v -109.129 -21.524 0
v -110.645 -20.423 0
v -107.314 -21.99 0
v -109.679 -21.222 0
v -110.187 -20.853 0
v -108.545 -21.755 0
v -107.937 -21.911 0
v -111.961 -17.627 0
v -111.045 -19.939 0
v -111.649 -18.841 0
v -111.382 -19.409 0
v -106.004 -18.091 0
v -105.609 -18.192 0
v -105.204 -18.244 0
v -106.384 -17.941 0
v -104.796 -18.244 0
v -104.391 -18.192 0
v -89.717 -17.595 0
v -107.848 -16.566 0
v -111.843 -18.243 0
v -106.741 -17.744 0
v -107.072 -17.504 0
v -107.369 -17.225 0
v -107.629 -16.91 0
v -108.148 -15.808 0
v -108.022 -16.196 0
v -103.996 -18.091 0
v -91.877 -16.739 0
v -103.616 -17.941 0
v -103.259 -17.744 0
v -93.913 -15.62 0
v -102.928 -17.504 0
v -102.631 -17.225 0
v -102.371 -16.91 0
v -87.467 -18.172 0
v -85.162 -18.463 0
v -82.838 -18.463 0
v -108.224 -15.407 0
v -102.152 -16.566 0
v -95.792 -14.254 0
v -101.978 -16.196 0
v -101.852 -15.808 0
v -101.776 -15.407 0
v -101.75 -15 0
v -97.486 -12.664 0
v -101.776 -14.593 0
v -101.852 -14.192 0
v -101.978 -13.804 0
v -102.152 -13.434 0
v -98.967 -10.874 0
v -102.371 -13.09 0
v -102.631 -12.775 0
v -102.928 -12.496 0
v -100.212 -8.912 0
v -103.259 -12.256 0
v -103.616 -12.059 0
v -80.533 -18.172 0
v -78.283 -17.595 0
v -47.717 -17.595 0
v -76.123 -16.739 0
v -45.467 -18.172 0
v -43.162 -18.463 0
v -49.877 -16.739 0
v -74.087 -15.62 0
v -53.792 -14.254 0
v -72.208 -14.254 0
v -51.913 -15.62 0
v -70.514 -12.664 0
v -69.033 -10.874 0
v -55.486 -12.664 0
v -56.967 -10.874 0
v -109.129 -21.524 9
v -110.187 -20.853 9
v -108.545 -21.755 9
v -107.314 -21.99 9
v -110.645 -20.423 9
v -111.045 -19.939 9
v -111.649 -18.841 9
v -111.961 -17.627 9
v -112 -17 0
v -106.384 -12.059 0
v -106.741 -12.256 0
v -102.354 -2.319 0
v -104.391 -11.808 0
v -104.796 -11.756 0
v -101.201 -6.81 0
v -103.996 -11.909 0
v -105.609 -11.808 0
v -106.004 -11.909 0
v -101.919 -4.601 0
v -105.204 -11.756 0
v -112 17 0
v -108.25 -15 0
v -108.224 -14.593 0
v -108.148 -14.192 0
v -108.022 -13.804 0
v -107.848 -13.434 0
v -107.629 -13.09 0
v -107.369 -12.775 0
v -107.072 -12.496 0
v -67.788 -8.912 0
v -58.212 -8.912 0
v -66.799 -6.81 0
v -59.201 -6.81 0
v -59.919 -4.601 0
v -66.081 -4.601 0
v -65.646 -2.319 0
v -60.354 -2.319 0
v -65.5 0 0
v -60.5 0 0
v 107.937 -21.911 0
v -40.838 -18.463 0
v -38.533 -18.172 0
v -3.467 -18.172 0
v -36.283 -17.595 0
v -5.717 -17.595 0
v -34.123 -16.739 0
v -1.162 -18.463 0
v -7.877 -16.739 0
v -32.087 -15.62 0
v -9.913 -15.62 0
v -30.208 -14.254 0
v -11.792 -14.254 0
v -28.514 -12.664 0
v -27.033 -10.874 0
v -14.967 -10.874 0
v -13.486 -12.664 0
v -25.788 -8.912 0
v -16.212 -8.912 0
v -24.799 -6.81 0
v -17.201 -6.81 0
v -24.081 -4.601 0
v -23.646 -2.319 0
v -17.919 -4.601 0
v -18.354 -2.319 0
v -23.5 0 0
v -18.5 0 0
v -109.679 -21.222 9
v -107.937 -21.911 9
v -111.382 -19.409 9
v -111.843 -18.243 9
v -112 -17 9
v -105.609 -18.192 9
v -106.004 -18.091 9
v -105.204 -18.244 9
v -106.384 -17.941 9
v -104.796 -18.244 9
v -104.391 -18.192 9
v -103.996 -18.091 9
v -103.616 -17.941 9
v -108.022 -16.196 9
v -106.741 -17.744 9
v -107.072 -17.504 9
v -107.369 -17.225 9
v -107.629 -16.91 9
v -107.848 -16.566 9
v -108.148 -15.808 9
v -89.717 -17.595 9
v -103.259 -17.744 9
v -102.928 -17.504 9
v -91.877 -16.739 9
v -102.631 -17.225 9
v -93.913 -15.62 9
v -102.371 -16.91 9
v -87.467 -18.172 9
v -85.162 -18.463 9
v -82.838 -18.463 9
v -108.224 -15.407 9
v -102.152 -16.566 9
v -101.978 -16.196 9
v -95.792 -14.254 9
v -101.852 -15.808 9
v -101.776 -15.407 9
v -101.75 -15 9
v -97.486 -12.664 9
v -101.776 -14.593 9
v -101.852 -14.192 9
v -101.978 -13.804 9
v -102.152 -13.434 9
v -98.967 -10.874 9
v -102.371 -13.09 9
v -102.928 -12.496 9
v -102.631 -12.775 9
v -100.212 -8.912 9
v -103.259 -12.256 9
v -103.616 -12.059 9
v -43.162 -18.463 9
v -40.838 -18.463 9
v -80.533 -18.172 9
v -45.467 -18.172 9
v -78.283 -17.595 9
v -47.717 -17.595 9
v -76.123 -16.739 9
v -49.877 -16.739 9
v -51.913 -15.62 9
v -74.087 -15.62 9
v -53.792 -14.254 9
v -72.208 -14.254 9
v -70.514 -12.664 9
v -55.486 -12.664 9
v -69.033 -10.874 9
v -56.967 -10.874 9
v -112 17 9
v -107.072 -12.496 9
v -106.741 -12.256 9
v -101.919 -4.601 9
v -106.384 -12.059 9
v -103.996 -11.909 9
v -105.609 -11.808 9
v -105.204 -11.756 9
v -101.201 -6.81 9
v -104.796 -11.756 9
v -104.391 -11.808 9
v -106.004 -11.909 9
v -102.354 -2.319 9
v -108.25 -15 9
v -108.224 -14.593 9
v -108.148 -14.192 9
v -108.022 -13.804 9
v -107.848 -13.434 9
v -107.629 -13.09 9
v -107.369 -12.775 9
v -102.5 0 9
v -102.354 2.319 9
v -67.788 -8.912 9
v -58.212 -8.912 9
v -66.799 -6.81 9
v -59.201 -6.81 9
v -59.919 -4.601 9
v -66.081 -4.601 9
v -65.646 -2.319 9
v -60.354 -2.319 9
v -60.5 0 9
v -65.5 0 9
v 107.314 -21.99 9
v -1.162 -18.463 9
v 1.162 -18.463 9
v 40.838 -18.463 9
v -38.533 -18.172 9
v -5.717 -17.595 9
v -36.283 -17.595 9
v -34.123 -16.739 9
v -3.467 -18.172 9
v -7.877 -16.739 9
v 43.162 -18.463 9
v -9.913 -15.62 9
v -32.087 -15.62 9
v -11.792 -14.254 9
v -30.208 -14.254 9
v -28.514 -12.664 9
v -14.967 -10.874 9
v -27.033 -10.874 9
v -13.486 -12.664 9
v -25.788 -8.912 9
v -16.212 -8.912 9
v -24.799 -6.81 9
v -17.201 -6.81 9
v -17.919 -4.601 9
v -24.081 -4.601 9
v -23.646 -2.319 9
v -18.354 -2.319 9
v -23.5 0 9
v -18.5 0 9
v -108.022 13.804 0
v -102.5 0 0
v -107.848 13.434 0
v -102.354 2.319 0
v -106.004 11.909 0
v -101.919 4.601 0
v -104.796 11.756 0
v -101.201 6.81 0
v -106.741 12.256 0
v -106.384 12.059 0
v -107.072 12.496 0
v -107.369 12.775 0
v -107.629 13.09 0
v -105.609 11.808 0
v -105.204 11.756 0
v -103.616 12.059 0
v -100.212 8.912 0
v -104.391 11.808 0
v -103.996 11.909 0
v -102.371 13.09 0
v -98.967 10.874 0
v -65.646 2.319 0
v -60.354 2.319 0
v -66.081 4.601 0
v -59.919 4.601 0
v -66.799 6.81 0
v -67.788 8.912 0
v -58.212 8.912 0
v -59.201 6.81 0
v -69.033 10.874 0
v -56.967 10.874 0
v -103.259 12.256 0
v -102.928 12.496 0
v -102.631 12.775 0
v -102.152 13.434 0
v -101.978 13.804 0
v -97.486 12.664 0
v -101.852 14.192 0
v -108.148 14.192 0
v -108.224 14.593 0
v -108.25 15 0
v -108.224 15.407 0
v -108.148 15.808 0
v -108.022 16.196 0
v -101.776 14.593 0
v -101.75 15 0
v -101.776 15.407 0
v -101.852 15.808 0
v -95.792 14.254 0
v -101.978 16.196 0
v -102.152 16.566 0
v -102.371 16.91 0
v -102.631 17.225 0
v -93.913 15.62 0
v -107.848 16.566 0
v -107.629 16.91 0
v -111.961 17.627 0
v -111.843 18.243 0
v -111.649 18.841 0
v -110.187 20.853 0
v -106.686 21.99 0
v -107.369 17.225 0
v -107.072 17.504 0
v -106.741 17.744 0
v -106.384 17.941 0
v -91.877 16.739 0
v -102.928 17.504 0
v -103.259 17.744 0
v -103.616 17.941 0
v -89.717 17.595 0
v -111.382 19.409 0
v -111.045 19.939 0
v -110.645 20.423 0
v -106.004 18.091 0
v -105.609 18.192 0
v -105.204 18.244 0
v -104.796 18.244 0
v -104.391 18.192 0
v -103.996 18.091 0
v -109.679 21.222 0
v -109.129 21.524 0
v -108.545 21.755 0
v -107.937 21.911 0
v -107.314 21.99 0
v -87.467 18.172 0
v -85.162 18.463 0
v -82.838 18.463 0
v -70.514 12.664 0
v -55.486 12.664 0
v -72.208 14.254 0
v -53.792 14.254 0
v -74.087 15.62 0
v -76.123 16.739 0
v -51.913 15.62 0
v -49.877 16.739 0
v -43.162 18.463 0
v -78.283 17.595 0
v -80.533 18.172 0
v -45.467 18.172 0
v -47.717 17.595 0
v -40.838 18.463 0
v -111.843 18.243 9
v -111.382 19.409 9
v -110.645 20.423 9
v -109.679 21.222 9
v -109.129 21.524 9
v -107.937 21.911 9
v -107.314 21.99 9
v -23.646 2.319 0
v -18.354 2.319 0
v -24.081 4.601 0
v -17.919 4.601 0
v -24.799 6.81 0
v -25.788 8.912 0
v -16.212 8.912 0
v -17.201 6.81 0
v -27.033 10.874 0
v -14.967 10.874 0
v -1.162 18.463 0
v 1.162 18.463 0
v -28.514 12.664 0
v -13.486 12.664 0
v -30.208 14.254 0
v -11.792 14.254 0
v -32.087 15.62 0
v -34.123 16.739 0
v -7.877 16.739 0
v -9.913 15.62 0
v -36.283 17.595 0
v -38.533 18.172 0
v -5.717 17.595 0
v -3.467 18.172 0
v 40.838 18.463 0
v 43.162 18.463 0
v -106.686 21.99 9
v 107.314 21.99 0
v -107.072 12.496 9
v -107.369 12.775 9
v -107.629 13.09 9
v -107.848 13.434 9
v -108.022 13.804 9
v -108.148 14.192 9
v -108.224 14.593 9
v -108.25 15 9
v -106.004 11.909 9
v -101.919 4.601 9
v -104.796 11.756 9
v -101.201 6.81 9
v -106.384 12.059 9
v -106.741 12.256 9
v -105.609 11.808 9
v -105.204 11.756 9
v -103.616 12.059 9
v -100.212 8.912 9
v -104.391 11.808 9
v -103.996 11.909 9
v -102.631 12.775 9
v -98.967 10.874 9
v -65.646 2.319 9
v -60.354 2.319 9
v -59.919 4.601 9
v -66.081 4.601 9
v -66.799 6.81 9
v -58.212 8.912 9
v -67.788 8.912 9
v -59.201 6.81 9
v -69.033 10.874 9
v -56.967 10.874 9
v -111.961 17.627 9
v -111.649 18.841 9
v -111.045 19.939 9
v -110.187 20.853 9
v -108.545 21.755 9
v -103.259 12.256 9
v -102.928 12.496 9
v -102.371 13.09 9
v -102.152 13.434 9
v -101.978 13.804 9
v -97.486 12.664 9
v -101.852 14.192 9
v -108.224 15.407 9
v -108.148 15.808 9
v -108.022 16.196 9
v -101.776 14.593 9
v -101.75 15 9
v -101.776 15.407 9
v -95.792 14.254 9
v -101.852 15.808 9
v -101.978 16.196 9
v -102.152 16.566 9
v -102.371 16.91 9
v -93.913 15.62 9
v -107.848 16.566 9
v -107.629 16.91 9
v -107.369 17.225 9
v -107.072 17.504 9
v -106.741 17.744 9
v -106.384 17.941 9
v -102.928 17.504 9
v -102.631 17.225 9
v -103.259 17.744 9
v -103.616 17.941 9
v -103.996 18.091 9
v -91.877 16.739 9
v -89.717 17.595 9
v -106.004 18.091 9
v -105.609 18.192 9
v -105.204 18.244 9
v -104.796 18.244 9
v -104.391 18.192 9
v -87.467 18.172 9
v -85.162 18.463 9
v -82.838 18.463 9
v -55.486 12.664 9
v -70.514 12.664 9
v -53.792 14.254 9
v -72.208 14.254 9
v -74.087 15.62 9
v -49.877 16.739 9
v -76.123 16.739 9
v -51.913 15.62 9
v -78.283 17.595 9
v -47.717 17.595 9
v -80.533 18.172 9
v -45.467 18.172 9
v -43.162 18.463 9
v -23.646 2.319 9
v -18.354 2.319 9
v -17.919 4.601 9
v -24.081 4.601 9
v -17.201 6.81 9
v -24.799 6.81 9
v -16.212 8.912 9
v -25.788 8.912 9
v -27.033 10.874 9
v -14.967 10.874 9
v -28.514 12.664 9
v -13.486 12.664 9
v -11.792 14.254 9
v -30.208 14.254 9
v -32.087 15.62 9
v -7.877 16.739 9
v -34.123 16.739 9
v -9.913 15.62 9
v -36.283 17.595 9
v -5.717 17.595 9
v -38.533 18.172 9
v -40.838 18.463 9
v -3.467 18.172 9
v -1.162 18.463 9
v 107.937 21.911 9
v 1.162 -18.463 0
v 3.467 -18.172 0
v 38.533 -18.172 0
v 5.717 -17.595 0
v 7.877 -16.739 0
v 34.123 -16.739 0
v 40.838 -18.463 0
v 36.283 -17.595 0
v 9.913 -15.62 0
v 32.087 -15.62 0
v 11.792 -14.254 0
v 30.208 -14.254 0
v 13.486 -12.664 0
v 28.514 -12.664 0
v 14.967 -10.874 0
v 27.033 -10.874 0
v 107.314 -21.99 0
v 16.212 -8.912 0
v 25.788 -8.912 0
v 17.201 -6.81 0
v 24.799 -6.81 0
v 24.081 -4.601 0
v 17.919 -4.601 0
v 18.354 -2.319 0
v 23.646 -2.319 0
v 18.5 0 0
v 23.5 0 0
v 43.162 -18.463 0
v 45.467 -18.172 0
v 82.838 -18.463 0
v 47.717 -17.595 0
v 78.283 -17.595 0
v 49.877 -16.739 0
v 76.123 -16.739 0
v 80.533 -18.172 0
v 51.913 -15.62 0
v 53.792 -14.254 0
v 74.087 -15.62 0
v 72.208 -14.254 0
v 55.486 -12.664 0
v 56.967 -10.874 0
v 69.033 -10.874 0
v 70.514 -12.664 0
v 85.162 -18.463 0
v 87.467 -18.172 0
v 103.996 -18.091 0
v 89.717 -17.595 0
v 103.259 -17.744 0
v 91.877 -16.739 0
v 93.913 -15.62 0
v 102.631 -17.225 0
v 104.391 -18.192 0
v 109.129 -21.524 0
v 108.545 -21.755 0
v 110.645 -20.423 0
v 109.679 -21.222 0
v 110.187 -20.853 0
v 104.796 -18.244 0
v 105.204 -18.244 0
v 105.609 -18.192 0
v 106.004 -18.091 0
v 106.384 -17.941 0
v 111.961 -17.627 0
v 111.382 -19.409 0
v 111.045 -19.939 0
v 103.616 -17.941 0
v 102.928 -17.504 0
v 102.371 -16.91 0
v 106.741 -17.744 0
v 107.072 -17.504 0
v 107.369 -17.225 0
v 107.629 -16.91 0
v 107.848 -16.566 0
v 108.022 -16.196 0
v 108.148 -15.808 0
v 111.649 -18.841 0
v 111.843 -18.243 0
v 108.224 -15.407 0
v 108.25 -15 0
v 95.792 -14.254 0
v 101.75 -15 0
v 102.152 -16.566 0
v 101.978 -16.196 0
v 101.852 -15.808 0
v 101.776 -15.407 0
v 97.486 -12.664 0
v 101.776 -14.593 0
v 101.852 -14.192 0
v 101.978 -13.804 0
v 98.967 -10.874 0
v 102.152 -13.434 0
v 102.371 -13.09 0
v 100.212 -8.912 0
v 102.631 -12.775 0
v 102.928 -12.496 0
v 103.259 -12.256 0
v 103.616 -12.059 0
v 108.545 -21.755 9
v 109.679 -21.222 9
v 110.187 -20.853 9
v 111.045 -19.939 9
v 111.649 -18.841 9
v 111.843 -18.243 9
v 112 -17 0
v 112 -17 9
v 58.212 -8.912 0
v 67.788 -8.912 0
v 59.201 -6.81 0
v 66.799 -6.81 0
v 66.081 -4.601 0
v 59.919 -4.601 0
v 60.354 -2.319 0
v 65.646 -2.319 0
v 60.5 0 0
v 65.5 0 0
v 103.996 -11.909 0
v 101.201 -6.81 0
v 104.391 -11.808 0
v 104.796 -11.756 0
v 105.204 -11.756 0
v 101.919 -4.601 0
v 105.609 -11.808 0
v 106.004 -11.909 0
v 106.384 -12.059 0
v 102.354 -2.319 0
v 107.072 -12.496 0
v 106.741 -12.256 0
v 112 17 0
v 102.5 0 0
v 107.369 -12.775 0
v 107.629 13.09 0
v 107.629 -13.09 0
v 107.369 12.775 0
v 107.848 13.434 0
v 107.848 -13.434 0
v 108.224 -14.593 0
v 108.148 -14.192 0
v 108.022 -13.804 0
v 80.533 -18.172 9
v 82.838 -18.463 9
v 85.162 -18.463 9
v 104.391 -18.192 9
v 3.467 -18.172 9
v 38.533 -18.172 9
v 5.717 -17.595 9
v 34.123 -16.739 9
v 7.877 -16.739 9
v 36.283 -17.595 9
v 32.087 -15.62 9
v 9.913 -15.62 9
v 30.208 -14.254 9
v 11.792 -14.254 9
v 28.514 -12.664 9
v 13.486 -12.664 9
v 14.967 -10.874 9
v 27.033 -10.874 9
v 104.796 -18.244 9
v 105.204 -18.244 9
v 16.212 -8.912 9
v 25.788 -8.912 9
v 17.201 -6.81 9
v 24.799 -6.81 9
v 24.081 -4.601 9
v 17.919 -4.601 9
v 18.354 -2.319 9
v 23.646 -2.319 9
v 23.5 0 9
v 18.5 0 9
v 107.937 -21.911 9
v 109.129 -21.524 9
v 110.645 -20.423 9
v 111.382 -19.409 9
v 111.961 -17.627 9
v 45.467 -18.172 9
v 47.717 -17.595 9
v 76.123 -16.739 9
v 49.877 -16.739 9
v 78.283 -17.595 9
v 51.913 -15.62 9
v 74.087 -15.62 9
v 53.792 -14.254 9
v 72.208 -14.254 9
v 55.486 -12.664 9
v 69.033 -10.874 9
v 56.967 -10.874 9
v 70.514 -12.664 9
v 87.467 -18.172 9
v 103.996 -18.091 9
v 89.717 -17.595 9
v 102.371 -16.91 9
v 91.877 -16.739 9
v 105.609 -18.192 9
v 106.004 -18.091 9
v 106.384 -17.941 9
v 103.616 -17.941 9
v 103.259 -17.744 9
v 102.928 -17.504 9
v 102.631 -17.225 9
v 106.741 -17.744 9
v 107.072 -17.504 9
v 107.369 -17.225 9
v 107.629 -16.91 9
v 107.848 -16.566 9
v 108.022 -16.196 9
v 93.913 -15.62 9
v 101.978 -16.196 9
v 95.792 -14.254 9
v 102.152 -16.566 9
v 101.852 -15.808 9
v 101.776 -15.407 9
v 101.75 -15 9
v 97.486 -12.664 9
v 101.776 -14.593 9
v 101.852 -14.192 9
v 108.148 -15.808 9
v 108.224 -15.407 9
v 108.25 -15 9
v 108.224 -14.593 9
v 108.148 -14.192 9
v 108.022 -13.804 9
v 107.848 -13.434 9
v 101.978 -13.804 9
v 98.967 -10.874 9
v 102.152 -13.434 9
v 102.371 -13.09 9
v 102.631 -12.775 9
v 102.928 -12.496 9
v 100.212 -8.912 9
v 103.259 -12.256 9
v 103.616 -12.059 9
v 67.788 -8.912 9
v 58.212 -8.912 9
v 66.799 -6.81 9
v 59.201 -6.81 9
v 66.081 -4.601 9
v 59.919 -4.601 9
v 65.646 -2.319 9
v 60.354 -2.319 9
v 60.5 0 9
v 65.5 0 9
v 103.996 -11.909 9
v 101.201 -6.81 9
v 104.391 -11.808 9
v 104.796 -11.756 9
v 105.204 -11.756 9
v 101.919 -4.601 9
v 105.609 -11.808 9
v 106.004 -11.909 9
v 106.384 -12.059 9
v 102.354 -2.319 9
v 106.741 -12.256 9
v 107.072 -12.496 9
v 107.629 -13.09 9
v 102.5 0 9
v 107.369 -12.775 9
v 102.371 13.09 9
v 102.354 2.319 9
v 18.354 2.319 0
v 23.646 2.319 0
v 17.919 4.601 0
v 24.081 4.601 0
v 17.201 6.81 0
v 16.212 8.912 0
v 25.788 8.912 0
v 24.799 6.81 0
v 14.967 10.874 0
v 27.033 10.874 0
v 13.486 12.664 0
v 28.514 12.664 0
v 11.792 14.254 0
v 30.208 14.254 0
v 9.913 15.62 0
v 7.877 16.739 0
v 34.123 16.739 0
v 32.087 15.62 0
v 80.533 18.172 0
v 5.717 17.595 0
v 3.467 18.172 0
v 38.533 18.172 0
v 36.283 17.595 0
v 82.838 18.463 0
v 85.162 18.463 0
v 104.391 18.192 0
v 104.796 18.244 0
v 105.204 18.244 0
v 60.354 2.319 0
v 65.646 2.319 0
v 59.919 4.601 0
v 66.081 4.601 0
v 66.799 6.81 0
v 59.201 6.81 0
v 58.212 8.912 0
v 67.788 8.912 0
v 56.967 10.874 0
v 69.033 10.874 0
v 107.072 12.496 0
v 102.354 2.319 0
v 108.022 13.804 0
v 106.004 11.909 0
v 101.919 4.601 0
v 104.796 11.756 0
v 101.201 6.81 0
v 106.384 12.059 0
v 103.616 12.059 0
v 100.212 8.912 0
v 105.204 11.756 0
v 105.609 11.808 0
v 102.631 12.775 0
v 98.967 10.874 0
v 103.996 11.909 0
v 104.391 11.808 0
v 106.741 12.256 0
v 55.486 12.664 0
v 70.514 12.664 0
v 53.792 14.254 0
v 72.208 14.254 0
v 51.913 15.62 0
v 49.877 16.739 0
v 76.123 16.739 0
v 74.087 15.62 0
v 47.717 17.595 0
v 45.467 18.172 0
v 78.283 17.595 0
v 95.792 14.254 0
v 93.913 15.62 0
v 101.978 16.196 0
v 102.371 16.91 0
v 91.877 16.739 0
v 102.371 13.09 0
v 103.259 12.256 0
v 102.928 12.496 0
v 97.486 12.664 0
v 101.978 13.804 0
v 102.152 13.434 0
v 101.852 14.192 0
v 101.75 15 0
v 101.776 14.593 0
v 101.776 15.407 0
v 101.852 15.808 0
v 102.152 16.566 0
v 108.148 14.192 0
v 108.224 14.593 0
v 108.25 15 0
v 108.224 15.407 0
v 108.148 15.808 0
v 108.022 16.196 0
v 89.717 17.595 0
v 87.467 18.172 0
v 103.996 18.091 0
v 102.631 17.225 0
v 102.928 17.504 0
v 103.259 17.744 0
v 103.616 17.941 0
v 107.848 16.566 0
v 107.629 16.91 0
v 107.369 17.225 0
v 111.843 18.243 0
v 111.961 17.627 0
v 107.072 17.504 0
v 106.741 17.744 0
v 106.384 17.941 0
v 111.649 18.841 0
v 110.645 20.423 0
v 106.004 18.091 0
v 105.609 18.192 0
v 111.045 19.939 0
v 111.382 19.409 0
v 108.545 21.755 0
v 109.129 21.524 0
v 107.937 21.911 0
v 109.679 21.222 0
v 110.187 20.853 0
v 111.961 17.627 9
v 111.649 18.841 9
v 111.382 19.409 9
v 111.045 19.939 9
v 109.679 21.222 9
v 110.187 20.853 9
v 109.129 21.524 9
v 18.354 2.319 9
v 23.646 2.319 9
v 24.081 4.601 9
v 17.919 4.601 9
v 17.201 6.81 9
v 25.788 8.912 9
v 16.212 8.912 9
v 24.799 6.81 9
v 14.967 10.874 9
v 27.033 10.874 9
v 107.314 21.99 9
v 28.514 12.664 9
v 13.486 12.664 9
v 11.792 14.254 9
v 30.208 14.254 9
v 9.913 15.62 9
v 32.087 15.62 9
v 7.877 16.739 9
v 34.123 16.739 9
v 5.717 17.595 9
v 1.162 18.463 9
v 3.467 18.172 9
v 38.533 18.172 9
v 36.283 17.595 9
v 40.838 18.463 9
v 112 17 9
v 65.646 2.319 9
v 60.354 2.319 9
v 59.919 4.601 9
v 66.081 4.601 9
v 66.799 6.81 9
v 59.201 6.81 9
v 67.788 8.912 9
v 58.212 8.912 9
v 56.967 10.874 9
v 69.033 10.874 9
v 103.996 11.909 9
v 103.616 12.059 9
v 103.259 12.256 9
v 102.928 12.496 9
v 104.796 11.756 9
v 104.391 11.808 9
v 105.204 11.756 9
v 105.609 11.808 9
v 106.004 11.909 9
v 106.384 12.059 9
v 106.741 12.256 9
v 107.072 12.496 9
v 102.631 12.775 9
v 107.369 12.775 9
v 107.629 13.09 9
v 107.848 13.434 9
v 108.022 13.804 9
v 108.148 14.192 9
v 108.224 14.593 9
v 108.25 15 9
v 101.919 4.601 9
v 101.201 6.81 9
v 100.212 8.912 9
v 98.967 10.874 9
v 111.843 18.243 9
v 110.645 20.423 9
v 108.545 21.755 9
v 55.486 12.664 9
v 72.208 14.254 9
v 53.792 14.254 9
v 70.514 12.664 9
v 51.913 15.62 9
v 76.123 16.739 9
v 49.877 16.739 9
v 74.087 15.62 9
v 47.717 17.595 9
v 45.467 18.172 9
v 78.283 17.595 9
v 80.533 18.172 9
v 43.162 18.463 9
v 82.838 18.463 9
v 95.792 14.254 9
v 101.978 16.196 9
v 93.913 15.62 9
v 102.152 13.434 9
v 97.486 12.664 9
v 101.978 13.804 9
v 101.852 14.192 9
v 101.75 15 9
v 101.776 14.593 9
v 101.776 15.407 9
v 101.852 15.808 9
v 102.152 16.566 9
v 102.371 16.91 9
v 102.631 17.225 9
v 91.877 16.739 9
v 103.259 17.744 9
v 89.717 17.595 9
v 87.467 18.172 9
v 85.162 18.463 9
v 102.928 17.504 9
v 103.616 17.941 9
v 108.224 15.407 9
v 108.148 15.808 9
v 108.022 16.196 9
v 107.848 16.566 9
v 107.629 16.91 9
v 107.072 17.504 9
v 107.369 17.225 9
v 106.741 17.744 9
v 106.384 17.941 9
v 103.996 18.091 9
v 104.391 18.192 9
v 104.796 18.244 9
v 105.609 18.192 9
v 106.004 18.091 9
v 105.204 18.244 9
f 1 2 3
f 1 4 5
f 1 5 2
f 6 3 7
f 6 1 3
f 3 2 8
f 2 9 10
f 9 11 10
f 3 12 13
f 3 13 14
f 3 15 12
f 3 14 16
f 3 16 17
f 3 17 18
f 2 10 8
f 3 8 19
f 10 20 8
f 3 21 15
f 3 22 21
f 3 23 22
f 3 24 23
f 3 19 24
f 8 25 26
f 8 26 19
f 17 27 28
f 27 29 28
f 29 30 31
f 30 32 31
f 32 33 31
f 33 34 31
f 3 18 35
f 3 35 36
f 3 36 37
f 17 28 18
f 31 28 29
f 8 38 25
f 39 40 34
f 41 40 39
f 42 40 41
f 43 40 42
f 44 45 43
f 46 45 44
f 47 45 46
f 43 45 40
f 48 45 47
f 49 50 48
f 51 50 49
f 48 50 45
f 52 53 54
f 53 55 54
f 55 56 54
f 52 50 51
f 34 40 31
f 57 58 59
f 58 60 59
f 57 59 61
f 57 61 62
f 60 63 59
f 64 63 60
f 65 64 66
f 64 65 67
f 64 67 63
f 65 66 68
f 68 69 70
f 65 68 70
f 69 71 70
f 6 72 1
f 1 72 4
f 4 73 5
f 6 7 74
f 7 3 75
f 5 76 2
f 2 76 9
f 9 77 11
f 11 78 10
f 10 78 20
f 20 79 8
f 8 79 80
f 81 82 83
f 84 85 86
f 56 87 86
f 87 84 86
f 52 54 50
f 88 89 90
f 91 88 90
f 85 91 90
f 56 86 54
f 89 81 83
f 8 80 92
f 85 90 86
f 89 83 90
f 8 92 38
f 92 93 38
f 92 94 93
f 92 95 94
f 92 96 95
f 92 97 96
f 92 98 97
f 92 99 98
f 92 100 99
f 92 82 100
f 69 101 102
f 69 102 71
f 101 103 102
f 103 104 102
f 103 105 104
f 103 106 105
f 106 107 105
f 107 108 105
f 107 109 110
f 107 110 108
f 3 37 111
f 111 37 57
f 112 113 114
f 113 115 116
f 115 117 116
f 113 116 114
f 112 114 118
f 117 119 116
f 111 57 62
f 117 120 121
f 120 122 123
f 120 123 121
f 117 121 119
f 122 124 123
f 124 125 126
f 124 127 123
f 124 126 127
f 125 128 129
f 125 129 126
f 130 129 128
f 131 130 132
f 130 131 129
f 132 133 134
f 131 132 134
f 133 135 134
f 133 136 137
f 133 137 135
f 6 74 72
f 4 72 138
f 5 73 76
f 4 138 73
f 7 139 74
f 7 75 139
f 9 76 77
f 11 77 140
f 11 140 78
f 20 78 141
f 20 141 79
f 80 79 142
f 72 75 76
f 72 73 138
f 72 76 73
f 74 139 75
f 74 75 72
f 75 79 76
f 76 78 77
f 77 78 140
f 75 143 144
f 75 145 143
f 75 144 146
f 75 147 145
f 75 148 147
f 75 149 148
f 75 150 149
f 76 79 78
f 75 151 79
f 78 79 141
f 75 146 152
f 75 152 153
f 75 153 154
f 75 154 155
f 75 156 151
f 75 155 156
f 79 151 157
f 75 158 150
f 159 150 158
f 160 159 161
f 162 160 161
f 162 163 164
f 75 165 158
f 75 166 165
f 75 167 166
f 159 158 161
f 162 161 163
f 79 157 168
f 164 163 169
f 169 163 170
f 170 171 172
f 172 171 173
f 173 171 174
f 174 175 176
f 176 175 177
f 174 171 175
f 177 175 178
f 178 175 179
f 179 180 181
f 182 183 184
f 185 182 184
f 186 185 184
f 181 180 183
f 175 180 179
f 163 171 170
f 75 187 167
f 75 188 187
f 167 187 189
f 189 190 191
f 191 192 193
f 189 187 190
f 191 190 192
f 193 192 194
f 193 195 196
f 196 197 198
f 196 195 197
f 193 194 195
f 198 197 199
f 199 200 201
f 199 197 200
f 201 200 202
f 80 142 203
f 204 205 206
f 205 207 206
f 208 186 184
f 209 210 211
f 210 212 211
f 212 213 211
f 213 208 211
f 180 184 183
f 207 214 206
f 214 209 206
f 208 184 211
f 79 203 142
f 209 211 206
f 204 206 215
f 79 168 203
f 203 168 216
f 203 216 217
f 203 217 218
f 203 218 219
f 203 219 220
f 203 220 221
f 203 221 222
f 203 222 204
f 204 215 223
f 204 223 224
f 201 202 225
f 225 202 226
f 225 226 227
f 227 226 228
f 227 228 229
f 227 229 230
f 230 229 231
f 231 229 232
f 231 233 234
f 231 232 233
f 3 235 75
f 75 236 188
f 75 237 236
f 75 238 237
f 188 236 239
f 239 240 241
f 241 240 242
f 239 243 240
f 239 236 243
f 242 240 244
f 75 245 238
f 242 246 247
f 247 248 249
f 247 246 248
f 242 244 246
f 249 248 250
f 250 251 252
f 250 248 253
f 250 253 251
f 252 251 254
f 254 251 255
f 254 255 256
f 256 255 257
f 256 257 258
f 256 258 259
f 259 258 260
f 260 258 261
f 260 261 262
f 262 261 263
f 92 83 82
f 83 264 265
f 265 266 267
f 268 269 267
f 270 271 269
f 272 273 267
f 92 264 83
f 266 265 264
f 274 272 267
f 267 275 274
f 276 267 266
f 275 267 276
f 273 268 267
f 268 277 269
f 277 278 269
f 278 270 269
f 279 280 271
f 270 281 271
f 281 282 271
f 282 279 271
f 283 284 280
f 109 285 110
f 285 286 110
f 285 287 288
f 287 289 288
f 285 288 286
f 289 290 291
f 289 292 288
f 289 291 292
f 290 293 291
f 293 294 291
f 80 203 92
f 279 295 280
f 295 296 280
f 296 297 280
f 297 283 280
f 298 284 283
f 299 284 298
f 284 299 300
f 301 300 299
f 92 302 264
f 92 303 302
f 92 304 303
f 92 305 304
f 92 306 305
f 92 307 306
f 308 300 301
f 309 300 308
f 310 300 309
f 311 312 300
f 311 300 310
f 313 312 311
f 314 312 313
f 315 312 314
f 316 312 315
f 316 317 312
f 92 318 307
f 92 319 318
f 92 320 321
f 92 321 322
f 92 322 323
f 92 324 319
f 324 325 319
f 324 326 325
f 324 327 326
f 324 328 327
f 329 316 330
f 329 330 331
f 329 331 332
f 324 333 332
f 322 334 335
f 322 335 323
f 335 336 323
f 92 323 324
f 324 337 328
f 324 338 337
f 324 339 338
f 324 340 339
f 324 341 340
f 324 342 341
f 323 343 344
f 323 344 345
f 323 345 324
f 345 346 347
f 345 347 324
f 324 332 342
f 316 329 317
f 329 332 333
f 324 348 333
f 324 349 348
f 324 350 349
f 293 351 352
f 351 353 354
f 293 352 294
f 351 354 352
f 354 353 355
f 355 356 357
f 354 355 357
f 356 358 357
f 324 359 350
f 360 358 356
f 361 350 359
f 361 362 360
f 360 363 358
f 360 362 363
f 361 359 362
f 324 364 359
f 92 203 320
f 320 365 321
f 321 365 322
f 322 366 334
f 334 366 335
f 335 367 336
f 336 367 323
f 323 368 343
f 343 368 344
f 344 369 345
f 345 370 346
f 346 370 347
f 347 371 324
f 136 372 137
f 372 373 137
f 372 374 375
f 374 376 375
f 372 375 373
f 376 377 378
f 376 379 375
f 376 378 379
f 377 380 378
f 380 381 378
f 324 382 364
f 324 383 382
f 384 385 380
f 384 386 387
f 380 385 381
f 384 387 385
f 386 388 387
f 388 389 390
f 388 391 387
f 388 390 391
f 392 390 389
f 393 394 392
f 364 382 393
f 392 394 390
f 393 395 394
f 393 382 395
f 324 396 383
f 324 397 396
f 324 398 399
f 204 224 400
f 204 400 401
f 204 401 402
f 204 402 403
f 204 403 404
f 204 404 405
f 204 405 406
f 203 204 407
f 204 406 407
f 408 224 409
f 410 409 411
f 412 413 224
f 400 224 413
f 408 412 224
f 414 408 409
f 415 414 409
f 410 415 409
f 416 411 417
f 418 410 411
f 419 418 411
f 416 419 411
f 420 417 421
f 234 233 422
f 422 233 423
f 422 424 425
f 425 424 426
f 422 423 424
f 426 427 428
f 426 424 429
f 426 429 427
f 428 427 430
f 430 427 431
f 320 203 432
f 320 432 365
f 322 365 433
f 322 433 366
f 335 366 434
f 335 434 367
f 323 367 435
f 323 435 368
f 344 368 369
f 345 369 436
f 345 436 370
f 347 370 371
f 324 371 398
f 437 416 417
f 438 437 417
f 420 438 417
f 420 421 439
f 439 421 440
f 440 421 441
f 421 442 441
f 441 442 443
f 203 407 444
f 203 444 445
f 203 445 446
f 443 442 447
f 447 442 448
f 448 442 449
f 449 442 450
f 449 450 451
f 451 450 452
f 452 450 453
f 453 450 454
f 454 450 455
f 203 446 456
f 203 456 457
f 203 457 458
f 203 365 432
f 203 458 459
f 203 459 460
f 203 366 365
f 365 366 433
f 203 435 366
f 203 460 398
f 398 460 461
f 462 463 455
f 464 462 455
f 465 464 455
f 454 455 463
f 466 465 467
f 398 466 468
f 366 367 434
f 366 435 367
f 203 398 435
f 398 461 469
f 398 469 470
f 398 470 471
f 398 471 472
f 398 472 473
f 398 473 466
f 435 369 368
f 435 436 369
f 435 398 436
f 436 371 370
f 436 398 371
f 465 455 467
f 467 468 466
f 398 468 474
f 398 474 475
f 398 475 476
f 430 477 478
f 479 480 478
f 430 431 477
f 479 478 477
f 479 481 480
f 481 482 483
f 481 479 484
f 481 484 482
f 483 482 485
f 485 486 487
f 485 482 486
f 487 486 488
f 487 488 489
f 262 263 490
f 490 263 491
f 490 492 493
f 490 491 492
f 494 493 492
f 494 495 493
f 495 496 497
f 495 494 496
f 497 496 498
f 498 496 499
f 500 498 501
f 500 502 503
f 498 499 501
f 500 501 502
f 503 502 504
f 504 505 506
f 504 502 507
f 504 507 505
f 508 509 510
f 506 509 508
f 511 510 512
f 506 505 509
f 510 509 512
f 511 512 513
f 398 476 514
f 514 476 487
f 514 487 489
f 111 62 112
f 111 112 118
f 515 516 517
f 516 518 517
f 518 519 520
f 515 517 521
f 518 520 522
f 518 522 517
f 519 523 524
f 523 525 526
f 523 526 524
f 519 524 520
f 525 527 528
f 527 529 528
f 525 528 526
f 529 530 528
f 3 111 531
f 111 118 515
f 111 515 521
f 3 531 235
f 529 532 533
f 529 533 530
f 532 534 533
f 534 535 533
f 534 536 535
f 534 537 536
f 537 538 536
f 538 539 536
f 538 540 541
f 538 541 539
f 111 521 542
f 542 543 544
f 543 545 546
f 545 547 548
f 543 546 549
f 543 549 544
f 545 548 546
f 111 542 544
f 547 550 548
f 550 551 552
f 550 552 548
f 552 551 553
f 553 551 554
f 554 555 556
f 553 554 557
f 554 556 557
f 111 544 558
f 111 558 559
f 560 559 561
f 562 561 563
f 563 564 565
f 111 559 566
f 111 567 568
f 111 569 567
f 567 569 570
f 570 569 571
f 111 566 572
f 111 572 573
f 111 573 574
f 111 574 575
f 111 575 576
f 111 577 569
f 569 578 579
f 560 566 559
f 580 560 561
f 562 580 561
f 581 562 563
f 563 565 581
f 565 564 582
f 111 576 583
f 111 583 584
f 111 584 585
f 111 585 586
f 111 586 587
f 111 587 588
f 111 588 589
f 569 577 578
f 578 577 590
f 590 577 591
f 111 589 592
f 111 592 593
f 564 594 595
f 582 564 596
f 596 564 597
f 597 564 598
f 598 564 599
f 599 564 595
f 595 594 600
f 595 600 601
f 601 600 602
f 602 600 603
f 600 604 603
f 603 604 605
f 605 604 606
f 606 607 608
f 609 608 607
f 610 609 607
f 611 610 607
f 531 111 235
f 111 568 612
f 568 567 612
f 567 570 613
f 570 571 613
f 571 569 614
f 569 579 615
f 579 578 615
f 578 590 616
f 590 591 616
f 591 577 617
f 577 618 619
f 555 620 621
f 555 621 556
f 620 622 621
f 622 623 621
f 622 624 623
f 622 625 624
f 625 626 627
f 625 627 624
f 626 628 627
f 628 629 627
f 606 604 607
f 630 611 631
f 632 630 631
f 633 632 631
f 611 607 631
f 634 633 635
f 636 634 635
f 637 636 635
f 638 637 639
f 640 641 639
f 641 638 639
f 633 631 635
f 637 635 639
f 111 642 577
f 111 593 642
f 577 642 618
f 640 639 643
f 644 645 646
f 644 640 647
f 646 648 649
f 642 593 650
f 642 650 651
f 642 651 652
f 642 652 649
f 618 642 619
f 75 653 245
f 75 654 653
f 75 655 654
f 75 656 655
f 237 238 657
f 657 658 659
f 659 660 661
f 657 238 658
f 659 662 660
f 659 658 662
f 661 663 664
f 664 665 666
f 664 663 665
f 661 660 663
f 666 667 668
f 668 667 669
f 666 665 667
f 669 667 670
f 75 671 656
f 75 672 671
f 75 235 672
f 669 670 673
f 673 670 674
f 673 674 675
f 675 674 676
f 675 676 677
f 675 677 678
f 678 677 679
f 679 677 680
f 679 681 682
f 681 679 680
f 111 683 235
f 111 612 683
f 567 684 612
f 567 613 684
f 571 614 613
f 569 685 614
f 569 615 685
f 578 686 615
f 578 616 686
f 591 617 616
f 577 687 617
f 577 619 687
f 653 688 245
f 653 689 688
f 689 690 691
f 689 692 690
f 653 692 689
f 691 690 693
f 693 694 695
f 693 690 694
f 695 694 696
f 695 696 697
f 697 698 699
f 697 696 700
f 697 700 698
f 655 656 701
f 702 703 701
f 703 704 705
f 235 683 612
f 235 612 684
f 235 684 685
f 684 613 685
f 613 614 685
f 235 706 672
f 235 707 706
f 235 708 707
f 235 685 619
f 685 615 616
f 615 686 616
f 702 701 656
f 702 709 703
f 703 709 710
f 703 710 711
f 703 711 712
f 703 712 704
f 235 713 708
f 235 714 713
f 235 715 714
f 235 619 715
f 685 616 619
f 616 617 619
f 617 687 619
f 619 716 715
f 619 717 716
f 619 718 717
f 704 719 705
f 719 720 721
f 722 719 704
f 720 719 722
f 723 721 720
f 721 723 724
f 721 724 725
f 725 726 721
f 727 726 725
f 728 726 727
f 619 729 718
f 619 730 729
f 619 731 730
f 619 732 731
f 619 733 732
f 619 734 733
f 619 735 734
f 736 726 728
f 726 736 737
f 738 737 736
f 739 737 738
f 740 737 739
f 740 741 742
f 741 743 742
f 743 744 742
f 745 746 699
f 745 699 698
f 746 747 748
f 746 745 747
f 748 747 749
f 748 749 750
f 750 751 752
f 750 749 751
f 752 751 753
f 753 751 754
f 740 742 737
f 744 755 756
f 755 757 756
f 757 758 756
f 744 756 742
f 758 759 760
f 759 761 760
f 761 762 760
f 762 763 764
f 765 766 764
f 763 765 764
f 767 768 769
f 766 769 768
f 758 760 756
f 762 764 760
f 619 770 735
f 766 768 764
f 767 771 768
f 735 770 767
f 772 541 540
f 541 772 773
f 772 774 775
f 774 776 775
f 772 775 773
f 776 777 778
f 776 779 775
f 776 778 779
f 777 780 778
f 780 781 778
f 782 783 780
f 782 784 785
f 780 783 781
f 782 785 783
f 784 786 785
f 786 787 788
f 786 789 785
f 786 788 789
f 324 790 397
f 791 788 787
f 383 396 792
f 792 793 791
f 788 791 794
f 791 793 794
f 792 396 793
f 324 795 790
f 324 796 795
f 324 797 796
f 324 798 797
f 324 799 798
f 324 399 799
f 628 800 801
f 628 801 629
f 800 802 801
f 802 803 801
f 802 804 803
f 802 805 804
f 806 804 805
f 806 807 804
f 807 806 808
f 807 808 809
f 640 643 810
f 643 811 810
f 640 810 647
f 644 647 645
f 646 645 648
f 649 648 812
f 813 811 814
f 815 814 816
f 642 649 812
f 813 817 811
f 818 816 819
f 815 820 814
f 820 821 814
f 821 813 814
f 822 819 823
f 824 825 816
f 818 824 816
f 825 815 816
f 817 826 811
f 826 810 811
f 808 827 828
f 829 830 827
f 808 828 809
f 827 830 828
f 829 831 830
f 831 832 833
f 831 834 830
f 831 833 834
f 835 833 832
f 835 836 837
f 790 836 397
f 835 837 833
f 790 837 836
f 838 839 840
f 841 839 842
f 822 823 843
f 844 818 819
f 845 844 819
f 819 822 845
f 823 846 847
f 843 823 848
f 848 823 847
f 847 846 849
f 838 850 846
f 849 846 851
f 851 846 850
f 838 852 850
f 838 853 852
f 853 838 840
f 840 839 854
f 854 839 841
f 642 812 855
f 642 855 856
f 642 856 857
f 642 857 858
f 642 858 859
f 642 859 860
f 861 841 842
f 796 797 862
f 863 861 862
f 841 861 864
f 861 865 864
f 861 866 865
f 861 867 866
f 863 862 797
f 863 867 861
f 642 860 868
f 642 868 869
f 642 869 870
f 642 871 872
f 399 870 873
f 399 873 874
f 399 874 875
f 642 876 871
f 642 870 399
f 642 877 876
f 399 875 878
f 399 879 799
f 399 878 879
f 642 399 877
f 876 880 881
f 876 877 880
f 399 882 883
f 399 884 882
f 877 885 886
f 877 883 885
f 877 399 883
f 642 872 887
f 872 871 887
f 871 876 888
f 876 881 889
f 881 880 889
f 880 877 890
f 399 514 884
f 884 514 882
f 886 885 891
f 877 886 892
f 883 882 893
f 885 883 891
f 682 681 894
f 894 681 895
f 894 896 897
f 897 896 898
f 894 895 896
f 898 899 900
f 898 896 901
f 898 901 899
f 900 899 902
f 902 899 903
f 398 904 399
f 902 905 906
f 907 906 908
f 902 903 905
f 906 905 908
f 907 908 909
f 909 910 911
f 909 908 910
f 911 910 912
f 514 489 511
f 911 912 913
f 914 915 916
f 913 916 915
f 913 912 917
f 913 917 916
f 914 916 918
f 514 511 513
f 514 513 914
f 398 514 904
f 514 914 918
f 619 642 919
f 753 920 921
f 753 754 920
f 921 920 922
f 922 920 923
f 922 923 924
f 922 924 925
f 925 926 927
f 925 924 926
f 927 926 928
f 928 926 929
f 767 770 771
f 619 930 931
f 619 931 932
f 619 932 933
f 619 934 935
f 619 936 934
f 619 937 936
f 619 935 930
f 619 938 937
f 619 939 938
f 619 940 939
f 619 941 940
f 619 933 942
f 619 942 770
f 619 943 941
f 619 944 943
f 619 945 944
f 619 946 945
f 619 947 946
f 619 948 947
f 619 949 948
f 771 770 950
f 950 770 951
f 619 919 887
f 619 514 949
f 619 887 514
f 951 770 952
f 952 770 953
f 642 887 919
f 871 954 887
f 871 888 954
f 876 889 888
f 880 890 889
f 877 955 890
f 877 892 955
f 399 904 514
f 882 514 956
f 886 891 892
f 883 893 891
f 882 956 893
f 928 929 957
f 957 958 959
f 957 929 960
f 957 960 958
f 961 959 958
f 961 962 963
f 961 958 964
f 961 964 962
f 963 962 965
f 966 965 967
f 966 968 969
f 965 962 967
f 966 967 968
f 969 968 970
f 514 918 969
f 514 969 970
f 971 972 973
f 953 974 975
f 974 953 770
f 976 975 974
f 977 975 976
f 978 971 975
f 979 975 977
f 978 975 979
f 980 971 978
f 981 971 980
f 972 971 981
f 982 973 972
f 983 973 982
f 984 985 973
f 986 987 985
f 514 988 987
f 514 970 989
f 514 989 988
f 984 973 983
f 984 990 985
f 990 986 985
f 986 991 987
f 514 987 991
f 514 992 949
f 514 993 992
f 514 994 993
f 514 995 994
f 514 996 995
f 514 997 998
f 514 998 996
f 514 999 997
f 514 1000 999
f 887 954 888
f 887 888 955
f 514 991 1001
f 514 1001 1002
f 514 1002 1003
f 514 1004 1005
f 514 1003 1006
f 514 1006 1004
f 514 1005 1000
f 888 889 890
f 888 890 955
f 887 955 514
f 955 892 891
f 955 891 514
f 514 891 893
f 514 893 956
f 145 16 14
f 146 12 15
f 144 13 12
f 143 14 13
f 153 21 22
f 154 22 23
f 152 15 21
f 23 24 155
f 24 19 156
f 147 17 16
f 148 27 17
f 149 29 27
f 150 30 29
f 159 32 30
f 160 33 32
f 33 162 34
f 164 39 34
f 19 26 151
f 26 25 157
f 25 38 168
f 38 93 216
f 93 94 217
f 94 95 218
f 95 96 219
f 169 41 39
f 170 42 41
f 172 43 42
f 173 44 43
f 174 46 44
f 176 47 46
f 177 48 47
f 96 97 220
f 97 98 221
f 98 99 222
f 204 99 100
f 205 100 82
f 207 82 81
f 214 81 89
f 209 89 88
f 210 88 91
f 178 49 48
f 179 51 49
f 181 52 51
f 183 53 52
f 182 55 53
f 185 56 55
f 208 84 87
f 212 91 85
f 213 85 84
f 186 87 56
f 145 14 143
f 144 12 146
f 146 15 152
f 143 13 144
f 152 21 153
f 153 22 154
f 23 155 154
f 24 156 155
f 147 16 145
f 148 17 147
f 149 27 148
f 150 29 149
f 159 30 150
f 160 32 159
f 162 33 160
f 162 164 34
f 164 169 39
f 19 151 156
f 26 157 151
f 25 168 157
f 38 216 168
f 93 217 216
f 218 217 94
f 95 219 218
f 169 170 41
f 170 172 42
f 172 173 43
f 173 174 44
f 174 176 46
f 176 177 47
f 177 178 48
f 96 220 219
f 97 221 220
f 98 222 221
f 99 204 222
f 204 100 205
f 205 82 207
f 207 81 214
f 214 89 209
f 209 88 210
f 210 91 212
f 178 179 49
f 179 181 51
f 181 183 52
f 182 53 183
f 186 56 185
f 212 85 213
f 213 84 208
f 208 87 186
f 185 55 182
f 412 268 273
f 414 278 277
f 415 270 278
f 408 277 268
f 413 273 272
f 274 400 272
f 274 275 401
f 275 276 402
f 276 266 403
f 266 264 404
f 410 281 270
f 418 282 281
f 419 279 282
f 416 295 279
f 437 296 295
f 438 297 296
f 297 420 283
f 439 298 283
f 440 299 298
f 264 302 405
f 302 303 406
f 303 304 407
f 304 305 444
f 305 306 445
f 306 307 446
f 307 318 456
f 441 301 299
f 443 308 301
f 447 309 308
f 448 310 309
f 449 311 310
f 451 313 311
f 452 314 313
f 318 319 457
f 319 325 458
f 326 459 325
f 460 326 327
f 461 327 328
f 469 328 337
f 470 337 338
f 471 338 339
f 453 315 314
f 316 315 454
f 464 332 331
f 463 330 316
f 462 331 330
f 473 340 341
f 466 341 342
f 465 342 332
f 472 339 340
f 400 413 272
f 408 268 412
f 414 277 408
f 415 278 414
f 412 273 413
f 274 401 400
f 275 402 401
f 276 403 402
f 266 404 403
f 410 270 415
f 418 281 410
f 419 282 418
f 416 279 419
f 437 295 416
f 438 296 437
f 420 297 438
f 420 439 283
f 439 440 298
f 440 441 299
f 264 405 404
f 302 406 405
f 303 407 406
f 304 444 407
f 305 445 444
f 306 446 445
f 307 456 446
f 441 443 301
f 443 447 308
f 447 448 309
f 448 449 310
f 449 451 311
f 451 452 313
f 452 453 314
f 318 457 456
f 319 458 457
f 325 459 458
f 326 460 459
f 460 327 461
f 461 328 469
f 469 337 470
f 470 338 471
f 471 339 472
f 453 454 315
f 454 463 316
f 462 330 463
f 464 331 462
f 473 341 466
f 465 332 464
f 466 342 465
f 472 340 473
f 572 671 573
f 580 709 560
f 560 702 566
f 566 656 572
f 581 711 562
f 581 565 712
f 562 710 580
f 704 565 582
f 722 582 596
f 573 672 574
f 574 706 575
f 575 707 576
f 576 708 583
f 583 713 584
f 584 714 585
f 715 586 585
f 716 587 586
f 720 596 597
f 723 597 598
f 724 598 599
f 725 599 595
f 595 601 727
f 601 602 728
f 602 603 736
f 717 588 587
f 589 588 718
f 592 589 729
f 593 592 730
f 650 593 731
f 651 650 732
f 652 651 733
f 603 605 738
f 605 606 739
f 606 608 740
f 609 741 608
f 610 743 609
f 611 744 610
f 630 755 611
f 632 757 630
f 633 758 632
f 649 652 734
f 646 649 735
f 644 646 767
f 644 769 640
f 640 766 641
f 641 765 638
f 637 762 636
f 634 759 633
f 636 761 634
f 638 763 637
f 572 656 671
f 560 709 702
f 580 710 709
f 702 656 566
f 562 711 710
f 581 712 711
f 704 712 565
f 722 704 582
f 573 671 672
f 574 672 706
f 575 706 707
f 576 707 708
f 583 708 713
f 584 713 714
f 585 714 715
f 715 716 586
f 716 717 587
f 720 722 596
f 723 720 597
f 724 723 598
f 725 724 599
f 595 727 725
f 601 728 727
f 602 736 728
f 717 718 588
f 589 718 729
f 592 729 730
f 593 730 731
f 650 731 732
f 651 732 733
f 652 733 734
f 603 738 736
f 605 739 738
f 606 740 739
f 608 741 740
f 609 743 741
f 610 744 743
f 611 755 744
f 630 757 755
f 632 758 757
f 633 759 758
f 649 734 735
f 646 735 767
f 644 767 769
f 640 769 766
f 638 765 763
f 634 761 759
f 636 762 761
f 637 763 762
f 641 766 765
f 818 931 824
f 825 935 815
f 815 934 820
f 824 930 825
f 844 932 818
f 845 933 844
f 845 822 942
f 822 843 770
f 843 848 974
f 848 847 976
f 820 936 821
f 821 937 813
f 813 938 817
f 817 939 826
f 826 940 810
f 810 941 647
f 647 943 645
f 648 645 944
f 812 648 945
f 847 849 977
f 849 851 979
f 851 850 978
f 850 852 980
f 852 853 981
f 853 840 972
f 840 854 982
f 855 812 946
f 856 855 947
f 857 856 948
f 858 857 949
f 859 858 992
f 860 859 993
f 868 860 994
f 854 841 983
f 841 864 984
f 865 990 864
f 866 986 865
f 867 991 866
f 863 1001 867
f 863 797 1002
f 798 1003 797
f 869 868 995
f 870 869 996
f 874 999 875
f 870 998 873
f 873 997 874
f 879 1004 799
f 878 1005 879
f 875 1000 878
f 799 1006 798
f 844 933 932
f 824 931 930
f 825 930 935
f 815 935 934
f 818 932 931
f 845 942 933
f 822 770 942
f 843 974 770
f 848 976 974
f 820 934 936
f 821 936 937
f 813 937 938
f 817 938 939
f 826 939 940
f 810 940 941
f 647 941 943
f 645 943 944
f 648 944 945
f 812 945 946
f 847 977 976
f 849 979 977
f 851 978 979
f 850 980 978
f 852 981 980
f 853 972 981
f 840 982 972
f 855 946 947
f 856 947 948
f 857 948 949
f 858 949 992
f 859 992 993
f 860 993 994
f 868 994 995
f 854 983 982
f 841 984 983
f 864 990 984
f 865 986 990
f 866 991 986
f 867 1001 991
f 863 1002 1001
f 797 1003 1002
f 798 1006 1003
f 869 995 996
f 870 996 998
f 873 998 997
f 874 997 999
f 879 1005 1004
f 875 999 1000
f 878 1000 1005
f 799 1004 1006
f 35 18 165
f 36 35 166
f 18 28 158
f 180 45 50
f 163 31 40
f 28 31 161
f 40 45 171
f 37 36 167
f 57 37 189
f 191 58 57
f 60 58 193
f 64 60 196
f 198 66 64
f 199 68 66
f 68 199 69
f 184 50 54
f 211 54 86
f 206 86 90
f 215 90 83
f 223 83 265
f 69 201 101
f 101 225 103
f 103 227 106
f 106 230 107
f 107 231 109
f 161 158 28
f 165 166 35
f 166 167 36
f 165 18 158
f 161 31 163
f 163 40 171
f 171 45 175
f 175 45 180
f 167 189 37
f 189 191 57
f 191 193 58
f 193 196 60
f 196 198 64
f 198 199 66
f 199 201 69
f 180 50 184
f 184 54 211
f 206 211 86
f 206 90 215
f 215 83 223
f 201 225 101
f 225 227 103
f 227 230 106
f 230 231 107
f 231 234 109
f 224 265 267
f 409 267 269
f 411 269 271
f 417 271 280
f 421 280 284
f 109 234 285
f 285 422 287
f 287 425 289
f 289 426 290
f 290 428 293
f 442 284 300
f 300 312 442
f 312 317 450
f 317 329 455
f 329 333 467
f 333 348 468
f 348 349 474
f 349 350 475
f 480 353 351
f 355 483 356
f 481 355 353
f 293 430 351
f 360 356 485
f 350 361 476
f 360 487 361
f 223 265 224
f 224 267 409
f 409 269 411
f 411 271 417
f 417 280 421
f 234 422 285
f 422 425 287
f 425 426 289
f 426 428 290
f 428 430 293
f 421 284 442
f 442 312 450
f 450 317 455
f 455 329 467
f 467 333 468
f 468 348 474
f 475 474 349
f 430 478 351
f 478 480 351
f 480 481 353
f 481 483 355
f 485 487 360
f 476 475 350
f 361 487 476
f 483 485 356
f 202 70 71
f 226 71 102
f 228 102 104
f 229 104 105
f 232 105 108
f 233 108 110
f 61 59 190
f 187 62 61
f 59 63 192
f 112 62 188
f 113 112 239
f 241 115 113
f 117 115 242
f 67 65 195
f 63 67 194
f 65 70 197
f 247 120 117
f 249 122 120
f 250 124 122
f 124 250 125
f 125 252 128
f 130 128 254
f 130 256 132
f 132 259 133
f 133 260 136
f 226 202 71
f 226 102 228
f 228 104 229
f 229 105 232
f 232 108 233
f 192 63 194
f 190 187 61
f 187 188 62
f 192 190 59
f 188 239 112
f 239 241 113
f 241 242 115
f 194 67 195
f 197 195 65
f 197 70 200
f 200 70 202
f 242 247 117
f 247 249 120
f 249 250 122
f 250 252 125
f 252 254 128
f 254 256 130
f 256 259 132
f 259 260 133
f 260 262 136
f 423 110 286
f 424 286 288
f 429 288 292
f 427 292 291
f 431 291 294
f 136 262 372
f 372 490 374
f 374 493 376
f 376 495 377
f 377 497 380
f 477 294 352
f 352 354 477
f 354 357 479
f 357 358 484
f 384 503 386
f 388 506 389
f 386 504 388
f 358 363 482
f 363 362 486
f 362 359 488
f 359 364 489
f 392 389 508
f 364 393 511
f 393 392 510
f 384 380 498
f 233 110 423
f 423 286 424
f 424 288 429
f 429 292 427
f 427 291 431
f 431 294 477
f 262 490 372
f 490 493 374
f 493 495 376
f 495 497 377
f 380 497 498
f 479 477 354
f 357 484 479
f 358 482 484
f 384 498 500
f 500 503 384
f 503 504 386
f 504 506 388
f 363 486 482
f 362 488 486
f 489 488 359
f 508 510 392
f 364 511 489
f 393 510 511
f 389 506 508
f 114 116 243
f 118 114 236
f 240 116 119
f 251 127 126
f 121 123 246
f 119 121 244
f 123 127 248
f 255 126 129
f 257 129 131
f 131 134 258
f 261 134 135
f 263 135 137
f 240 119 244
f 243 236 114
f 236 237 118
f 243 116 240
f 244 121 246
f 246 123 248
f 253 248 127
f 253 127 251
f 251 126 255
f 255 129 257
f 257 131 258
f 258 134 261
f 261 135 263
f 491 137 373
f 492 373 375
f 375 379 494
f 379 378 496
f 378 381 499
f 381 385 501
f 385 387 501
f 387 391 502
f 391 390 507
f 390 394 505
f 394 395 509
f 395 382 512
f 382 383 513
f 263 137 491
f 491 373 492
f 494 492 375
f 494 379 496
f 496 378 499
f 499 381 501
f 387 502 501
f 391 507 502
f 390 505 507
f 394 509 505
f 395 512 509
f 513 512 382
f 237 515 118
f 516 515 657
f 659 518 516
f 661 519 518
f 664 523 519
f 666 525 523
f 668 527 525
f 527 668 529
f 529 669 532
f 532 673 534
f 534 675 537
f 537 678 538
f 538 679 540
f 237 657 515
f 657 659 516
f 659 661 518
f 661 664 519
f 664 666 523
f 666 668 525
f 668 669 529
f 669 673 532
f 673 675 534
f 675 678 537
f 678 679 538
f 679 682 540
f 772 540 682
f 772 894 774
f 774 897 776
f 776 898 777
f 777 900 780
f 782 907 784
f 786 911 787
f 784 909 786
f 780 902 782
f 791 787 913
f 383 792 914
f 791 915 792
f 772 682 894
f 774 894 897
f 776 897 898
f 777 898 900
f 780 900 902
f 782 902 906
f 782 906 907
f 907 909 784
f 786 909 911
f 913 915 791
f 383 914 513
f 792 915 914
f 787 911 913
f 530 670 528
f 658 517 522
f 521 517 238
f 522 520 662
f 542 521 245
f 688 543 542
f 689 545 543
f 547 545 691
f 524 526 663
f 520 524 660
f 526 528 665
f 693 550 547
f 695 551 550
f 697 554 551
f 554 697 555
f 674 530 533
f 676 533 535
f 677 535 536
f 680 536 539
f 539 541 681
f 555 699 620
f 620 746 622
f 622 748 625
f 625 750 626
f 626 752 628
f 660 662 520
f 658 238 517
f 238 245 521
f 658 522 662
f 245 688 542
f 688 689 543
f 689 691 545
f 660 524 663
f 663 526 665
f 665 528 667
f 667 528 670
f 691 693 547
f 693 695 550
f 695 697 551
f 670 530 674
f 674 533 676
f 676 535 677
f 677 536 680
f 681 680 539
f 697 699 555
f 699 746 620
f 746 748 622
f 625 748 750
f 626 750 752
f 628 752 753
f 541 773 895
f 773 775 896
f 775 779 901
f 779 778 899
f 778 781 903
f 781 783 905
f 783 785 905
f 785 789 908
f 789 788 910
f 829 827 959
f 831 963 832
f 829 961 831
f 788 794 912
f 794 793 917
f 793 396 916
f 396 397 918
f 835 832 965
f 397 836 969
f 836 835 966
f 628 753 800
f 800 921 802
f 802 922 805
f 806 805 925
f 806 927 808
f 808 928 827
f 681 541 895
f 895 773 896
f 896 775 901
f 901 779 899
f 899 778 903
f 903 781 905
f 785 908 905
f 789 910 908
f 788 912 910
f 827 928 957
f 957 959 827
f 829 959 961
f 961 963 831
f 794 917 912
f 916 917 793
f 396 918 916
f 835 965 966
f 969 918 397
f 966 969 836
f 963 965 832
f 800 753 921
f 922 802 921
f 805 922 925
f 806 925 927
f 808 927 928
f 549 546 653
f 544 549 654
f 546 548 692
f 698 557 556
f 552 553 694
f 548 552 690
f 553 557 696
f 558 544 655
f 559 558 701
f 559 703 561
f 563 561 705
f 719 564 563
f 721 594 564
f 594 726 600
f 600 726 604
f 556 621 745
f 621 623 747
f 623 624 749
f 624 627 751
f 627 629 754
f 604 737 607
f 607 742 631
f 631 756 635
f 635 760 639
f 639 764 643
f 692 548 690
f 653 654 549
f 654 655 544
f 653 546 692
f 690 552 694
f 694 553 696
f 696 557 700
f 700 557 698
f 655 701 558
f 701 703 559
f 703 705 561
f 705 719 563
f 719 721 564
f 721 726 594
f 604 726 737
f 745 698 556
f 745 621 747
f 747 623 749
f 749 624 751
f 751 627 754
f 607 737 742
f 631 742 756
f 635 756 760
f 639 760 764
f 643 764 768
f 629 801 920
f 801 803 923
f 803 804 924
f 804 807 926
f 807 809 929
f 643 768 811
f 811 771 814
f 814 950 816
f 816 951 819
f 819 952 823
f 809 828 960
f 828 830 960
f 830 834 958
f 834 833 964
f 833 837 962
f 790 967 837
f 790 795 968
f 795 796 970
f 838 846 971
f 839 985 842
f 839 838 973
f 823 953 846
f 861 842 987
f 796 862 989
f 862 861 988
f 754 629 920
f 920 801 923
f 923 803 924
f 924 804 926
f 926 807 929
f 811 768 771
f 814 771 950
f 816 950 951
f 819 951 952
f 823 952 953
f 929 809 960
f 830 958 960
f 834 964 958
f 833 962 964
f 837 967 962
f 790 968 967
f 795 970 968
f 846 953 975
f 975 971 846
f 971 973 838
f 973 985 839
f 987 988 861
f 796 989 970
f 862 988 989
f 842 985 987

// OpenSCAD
$fn = 50;

difference() {
	union() {
		hull() {
			translate(v = [-107.0, 17.0, 0]) {
				cylinder(h = 9, r = 5);
			}
			translate(v = [107.0, 17.0, 0]) {
				cylinder(h = 9, r = 5);
			}
			translate(v = [-107.0, -17.0, 0]) {
				cylinder(h = 9, r = 5);
			}
			translate(v = [107.0, -17.0, 0]) {
				cylinder(h = 9, r = 5);
			}
		}
	}
	union() {
		translate(v = [-105.0, -15.0, -100.0]) {
			cylinder(h = 200, r = 3.25);
		}
		translate(v = [-105.0, 15.0, -100.0]) {
			cylinder(h = 200, r = 3.25);
		}
		translate(v = [105.0, -15.0, -100.0]) {
			cylinder(h = 200, r = 3.25);
		}
		translate(v = [105.0, 15.0, -100.0]) {
			cylinder(h = 200, r = 3.25);
		}
		translate(v = [-105.0, -15.0, -100.0]) {
			cylinder(h = 200, r = 1.8);
		}
		translate(v = [-105.0, 15.0, -100.0]) {
			cylinder(h = 200, r = 1.8);
		}
		translate(v = [105.0, -15.0, -100.0]) {
			cylinder(h = 200, r = 1.8);
		}
		translate(v = [105.0, 15.0, -100.0]) {
			cylinder(h = 200, r = 1.8);
		}
		translate(v = [-84.0, 0, 0.0]) {
			cylinder(h = 9, r = 18.5);
		}
		translate(v = [-42.0, 0, 0.0]) {
			cylinder(h = 9, r = 18.5);
		}
		cylinder(h = 9, r = 18.5);
		translate(v = [42.0, 0, 0.0]) {
			cylinder(h = 9, r = 18.5);
		}
		translate(v = [84.0, 0, 0.0]) {
			cylinder(h = 9, r = 18.5);
		}
	}
}
